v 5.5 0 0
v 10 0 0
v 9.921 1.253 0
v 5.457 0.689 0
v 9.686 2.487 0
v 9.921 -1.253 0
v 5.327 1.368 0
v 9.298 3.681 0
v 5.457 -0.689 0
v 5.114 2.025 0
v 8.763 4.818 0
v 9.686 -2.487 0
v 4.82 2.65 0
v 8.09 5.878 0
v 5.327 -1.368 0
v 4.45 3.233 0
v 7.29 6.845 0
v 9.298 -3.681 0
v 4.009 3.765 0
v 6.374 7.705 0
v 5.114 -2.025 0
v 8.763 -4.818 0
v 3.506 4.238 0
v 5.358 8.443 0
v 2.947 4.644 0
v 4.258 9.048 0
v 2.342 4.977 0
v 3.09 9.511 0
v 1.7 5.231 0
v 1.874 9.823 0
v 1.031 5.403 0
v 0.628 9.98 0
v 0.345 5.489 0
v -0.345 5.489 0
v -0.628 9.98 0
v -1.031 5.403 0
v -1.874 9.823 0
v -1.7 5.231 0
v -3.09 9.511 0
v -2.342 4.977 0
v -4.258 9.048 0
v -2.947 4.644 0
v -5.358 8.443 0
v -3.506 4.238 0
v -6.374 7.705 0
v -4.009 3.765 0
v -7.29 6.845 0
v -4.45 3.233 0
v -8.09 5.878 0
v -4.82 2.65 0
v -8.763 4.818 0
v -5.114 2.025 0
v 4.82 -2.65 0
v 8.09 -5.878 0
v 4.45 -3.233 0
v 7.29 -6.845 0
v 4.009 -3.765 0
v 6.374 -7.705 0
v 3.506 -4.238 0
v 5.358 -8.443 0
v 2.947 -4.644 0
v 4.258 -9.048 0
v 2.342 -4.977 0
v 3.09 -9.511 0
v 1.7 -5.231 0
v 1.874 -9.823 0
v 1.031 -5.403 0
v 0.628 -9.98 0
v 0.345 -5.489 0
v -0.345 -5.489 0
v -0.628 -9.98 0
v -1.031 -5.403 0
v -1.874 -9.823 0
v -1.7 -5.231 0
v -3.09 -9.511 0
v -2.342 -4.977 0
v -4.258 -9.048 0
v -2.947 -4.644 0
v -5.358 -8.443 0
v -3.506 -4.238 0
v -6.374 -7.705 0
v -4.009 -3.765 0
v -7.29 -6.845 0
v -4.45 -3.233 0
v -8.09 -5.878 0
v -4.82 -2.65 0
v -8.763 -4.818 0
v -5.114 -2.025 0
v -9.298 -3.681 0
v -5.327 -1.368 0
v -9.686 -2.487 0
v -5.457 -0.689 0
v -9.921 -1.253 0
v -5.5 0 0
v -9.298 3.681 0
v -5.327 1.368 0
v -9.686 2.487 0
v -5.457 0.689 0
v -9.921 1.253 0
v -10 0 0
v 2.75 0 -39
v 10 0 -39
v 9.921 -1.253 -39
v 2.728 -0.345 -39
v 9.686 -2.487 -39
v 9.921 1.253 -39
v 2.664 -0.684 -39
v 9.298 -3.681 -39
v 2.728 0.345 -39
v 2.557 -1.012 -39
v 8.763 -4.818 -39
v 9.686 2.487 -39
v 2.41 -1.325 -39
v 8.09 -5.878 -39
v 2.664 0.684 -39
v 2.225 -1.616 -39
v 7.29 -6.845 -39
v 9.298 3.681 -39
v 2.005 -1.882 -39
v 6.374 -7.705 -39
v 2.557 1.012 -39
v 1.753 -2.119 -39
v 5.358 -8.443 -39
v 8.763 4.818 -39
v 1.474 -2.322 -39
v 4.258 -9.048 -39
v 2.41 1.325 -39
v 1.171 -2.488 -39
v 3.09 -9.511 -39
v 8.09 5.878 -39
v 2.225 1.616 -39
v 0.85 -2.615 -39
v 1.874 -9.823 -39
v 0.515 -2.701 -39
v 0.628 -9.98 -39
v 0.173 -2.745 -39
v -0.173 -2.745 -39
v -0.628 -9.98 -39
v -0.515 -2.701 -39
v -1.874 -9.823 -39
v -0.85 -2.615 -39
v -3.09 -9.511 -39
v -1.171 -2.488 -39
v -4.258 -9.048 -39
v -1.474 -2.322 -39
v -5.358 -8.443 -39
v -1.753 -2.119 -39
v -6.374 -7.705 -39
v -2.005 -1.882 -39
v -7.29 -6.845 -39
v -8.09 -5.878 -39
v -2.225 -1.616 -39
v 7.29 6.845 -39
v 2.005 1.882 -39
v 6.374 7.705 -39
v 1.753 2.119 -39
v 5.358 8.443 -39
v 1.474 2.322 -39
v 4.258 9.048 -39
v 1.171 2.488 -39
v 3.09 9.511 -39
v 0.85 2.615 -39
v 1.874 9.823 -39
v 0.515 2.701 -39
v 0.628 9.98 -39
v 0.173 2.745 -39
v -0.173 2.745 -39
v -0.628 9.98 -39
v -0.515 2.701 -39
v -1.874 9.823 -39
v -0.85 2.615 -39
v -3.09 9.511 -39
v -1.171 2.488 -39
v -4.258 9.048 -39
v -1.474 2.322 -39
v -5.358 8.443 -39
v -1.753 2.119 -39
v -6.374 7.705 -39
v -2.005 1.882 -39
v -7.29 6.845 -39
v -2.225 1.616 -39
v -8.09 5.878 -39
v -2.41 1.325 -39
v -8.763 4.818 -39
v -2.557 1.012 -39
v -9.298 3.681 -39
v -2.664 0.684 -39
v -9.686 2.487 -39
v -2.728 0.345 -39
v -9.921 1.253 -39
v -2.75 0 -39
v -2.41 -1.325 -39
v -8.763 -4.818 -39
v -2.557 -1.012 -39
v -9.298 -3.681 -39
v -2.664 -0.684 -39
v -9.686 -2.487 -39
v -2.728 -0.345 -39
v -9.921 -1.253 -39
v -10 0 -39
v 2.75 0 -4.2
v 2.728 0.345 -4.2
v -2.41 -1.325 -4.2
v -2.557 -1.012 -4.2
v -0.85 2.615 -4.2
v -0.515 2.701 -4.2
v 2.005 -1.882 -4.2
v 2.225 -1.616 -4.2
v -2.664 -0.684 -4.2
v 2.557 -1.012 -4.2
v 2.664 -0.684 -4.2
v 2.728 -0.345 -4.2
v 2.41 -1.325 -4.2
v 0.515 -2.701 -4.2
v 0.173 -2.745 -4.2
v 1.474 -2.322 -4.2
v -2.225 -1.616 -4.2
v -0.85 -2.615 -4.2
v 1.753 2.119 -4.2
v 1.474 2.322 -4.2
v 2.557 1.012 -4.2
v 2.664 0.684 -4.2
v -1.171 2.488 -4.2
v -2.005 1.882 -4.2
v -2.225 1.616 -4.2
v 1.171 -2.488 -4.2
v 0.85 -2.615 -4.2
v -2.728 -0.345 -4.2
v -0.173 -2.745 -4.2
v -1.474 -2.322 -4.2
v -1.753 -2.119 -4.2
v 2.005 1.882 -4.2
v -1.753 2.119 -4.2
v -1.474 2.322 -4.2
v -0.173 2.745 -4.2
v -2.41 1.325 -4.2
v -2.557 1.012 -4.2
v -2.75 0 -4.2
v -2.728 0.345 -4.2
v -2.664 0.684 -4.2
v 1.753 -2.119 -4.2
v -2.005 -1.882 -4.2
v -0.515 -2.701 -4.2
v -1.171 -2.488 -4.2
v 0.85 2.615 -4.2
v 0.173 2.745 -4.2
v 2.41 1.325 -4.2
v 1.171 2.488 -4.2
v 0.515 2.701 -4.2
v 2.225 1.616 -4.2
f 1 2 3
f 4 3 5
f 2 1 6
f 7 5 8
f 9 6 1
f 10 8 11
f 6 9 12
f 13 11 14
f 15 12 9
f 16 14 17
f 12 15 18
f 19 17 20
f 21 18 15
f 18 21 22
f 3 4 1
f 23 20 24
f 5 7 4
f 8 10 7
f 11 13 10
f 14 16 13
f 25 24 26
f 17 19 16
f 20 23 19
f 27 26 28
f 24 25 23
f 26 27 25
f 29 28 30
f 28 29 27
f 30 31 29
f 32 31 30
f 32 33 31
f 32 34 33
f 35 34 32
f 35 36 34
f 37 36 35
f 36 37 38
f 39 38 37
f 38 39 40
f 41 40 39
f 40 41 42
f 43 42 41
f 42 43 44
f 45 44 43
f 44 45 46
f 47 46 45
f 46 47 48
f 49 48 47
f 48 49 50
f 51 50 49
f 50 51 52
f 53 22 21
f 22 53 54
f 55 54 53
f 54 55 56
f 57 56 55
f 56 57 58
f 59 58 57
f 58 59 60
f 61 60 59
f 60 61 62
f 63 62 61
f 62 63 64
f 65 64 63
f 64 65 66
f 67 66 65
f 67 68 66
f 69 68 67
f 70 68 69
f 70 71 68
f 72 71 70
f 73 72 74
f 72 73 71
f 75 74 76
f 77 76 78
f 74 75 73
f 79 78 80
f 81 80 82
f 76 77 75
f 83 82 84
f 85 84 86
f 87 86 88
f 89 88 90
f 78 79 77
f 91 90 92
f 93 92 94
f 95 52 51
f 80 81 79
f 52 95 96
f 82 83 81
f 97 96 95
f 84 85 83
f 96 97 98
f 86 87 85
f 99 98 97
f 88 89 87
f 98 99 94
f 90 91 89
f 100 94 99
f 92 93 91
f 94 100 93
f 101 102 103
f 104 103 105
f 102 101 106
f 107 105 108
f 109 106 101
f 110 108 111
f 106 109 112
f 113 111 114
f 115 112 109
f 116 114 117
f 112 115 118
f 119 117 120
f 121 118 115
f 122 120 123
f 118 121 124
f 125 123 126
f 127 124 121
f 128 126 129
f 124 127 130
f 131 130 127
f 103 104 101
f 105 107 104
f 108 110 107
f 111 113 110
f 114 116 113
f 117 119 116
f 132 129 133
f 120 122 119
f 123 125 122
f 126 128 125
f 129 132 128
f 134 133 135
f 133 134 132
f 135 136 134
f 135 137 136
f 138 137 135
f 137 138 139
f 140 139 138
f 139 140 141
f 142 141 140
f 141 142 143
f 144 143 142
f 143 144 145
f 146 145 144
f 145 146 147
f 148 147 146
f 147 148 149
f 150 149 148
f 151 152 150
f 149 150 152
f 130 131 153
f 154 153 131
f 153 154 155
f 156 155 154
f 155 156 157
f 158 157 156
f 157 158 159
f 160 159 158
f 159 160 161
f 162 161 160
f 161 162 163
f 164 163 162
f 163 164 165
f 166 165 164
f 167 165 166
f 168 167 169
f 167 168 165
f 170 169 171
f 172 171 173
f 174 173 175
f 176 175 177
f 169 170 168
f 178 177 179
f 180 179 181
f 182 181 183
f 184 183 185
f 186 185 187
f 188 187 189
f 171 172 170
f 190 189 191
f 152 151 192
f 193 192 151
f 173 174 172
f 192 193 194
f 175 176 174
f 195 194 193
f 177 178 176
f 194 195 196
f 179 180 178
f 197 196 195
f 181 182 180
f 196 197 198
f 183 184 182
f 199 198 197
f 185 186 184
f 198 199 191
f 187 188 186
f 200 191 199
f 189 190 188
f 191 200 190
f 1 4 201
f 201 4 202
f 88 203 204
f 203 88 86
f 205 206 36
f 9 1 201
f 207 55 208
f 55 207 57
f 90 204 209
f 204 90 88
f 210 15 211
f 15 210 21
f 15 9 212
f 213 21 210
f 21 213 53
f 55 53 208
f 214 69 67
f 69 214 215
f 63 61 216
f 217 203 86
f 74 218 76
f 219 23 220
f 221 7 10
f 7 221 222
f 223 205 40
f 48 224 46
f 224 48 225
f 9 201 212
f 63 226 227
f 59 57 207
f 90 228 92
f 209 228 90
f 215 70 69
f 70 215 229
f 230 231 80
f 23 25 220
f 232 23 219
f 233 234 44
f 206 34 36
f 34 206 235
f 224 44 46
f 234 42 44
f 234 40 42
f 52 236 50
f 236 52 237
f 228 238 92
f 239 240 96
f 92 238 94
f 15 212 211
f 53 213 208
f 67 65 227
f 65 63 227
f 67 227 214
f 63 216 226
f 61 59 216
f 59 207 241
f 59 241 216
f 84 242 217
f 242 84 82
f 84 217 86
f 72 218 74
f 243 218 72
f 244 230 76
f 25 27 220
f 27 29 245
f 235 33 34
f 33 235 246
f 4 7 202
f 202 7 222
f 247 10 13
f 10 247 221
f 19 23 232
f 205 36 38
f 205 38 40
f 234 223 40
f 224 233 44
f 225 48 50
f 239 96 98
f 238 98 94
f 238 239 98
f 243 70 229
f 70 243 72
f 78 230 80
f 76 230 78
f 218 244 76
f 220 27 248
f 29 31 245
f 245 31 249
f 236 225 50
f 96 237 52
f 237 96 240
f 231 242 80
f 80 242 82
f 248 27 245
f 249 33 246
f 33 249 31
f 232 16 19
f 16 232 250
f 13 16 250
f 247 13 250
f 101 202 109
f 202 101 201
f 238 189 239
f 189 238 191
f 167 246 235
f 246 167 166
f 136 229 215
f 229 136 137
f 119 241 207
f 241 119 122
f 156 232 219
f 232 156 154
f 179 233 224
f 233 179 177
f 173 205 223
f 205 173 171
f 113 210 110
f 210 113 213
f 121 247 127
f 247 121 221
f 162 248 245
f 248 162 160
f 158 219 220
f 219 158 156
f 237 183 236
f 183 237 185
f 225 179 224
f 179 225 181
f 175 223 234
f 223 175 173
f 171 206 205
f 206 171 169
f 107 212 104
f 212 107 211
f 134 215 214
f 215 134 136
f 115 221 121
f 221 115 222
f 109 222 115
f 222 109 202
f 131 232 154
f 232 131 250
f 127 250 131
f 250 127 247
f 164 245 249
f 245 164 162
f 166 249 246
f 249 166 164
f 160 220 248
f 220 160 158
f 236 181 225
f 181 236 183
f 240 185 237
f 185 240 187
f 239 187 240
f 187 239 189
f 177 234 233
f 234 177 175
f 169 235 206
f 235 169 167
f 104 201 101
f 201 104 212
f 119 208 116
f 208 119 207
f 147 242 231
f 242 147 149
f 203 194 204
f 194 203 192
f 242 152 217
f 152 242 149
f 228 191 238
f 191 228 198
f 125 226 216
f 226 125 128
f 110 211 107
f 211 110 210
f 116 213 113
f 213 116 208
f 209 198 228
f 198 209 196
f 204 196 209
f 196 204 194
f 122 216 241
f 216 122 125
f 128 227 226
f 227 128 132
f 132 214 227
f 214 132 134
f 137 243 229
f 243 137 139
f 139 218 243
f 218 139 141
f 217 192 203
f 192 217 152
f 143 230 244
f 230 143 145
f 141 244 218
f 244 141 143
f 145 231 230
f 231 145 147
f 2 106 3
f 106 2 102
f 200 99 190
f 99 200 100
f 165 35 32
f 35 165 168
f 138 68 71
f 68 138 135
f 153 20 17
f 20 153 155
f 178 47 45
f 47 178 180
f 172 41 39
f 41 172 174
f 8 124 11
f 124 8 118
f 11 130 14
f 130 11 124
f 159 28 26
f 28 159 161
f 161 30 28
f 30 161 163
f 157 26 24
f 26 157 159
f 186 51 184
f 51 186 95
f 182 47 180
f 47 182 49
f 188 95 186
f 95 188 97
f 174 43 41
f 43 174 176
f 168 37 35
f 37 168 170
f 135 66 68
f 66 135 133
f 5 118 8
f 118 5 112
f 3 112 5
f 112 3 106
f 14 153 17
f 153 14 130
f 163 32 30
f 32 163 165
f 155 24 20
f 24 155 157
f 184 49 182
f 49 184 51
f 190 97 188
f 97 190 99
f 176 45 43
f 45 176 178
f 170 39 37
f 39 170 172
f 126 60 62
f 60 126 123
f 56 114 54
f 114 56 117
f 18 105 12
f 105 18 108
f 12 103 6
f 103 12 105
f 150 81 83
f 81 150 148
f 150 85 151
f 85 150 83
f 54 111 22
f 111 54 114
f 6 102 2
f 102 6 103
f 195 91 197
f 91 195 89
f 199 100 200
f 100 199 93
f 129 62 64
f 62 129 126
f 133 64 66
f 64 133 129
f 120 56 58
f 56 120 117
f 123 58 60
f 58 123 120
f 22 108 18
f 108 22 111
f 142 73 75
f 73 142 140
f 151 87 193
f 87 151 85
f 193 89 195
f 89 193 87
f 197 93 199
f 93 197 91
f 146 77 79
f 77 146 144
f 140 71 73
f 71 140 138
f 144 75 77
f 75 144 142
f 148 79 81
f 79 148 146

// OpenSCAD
$fn = 50;


difference() {
	union() {
		translate(v = [0, 0, -39.0000000000]) {
			cylinder(h = 39, r = 10.0000000000);
		}
		cylinder(h = 0, r = 20.0000000000);
	}
	union() {
		translate(v = [0, 0, 0]) {
			rotate(a = [0, 0, 0]) {
				difference() {
					union() {
						#translate(v = [0, 0, -39.0000000000]) {
							cylinder(h = 39, r = 2.2500000000);
						}
						#translate(v = [0, 0, -4.2000000000]) {
							cylinder(h = 4.2000000000, r1 = 2.7500000000, r2 = 5.5000000000);
						}
						#translate(v = [0, 0, -39.0000000000]) {
							cylinder(h = 39, r = 2.7500000000);
						}
						#translate(v = [0, 0, -39.0000000000]) {
							cylinder(h = 39, r = 2.2500000000);
						}
					}
					union();
				}
			}
		}
	}
}
